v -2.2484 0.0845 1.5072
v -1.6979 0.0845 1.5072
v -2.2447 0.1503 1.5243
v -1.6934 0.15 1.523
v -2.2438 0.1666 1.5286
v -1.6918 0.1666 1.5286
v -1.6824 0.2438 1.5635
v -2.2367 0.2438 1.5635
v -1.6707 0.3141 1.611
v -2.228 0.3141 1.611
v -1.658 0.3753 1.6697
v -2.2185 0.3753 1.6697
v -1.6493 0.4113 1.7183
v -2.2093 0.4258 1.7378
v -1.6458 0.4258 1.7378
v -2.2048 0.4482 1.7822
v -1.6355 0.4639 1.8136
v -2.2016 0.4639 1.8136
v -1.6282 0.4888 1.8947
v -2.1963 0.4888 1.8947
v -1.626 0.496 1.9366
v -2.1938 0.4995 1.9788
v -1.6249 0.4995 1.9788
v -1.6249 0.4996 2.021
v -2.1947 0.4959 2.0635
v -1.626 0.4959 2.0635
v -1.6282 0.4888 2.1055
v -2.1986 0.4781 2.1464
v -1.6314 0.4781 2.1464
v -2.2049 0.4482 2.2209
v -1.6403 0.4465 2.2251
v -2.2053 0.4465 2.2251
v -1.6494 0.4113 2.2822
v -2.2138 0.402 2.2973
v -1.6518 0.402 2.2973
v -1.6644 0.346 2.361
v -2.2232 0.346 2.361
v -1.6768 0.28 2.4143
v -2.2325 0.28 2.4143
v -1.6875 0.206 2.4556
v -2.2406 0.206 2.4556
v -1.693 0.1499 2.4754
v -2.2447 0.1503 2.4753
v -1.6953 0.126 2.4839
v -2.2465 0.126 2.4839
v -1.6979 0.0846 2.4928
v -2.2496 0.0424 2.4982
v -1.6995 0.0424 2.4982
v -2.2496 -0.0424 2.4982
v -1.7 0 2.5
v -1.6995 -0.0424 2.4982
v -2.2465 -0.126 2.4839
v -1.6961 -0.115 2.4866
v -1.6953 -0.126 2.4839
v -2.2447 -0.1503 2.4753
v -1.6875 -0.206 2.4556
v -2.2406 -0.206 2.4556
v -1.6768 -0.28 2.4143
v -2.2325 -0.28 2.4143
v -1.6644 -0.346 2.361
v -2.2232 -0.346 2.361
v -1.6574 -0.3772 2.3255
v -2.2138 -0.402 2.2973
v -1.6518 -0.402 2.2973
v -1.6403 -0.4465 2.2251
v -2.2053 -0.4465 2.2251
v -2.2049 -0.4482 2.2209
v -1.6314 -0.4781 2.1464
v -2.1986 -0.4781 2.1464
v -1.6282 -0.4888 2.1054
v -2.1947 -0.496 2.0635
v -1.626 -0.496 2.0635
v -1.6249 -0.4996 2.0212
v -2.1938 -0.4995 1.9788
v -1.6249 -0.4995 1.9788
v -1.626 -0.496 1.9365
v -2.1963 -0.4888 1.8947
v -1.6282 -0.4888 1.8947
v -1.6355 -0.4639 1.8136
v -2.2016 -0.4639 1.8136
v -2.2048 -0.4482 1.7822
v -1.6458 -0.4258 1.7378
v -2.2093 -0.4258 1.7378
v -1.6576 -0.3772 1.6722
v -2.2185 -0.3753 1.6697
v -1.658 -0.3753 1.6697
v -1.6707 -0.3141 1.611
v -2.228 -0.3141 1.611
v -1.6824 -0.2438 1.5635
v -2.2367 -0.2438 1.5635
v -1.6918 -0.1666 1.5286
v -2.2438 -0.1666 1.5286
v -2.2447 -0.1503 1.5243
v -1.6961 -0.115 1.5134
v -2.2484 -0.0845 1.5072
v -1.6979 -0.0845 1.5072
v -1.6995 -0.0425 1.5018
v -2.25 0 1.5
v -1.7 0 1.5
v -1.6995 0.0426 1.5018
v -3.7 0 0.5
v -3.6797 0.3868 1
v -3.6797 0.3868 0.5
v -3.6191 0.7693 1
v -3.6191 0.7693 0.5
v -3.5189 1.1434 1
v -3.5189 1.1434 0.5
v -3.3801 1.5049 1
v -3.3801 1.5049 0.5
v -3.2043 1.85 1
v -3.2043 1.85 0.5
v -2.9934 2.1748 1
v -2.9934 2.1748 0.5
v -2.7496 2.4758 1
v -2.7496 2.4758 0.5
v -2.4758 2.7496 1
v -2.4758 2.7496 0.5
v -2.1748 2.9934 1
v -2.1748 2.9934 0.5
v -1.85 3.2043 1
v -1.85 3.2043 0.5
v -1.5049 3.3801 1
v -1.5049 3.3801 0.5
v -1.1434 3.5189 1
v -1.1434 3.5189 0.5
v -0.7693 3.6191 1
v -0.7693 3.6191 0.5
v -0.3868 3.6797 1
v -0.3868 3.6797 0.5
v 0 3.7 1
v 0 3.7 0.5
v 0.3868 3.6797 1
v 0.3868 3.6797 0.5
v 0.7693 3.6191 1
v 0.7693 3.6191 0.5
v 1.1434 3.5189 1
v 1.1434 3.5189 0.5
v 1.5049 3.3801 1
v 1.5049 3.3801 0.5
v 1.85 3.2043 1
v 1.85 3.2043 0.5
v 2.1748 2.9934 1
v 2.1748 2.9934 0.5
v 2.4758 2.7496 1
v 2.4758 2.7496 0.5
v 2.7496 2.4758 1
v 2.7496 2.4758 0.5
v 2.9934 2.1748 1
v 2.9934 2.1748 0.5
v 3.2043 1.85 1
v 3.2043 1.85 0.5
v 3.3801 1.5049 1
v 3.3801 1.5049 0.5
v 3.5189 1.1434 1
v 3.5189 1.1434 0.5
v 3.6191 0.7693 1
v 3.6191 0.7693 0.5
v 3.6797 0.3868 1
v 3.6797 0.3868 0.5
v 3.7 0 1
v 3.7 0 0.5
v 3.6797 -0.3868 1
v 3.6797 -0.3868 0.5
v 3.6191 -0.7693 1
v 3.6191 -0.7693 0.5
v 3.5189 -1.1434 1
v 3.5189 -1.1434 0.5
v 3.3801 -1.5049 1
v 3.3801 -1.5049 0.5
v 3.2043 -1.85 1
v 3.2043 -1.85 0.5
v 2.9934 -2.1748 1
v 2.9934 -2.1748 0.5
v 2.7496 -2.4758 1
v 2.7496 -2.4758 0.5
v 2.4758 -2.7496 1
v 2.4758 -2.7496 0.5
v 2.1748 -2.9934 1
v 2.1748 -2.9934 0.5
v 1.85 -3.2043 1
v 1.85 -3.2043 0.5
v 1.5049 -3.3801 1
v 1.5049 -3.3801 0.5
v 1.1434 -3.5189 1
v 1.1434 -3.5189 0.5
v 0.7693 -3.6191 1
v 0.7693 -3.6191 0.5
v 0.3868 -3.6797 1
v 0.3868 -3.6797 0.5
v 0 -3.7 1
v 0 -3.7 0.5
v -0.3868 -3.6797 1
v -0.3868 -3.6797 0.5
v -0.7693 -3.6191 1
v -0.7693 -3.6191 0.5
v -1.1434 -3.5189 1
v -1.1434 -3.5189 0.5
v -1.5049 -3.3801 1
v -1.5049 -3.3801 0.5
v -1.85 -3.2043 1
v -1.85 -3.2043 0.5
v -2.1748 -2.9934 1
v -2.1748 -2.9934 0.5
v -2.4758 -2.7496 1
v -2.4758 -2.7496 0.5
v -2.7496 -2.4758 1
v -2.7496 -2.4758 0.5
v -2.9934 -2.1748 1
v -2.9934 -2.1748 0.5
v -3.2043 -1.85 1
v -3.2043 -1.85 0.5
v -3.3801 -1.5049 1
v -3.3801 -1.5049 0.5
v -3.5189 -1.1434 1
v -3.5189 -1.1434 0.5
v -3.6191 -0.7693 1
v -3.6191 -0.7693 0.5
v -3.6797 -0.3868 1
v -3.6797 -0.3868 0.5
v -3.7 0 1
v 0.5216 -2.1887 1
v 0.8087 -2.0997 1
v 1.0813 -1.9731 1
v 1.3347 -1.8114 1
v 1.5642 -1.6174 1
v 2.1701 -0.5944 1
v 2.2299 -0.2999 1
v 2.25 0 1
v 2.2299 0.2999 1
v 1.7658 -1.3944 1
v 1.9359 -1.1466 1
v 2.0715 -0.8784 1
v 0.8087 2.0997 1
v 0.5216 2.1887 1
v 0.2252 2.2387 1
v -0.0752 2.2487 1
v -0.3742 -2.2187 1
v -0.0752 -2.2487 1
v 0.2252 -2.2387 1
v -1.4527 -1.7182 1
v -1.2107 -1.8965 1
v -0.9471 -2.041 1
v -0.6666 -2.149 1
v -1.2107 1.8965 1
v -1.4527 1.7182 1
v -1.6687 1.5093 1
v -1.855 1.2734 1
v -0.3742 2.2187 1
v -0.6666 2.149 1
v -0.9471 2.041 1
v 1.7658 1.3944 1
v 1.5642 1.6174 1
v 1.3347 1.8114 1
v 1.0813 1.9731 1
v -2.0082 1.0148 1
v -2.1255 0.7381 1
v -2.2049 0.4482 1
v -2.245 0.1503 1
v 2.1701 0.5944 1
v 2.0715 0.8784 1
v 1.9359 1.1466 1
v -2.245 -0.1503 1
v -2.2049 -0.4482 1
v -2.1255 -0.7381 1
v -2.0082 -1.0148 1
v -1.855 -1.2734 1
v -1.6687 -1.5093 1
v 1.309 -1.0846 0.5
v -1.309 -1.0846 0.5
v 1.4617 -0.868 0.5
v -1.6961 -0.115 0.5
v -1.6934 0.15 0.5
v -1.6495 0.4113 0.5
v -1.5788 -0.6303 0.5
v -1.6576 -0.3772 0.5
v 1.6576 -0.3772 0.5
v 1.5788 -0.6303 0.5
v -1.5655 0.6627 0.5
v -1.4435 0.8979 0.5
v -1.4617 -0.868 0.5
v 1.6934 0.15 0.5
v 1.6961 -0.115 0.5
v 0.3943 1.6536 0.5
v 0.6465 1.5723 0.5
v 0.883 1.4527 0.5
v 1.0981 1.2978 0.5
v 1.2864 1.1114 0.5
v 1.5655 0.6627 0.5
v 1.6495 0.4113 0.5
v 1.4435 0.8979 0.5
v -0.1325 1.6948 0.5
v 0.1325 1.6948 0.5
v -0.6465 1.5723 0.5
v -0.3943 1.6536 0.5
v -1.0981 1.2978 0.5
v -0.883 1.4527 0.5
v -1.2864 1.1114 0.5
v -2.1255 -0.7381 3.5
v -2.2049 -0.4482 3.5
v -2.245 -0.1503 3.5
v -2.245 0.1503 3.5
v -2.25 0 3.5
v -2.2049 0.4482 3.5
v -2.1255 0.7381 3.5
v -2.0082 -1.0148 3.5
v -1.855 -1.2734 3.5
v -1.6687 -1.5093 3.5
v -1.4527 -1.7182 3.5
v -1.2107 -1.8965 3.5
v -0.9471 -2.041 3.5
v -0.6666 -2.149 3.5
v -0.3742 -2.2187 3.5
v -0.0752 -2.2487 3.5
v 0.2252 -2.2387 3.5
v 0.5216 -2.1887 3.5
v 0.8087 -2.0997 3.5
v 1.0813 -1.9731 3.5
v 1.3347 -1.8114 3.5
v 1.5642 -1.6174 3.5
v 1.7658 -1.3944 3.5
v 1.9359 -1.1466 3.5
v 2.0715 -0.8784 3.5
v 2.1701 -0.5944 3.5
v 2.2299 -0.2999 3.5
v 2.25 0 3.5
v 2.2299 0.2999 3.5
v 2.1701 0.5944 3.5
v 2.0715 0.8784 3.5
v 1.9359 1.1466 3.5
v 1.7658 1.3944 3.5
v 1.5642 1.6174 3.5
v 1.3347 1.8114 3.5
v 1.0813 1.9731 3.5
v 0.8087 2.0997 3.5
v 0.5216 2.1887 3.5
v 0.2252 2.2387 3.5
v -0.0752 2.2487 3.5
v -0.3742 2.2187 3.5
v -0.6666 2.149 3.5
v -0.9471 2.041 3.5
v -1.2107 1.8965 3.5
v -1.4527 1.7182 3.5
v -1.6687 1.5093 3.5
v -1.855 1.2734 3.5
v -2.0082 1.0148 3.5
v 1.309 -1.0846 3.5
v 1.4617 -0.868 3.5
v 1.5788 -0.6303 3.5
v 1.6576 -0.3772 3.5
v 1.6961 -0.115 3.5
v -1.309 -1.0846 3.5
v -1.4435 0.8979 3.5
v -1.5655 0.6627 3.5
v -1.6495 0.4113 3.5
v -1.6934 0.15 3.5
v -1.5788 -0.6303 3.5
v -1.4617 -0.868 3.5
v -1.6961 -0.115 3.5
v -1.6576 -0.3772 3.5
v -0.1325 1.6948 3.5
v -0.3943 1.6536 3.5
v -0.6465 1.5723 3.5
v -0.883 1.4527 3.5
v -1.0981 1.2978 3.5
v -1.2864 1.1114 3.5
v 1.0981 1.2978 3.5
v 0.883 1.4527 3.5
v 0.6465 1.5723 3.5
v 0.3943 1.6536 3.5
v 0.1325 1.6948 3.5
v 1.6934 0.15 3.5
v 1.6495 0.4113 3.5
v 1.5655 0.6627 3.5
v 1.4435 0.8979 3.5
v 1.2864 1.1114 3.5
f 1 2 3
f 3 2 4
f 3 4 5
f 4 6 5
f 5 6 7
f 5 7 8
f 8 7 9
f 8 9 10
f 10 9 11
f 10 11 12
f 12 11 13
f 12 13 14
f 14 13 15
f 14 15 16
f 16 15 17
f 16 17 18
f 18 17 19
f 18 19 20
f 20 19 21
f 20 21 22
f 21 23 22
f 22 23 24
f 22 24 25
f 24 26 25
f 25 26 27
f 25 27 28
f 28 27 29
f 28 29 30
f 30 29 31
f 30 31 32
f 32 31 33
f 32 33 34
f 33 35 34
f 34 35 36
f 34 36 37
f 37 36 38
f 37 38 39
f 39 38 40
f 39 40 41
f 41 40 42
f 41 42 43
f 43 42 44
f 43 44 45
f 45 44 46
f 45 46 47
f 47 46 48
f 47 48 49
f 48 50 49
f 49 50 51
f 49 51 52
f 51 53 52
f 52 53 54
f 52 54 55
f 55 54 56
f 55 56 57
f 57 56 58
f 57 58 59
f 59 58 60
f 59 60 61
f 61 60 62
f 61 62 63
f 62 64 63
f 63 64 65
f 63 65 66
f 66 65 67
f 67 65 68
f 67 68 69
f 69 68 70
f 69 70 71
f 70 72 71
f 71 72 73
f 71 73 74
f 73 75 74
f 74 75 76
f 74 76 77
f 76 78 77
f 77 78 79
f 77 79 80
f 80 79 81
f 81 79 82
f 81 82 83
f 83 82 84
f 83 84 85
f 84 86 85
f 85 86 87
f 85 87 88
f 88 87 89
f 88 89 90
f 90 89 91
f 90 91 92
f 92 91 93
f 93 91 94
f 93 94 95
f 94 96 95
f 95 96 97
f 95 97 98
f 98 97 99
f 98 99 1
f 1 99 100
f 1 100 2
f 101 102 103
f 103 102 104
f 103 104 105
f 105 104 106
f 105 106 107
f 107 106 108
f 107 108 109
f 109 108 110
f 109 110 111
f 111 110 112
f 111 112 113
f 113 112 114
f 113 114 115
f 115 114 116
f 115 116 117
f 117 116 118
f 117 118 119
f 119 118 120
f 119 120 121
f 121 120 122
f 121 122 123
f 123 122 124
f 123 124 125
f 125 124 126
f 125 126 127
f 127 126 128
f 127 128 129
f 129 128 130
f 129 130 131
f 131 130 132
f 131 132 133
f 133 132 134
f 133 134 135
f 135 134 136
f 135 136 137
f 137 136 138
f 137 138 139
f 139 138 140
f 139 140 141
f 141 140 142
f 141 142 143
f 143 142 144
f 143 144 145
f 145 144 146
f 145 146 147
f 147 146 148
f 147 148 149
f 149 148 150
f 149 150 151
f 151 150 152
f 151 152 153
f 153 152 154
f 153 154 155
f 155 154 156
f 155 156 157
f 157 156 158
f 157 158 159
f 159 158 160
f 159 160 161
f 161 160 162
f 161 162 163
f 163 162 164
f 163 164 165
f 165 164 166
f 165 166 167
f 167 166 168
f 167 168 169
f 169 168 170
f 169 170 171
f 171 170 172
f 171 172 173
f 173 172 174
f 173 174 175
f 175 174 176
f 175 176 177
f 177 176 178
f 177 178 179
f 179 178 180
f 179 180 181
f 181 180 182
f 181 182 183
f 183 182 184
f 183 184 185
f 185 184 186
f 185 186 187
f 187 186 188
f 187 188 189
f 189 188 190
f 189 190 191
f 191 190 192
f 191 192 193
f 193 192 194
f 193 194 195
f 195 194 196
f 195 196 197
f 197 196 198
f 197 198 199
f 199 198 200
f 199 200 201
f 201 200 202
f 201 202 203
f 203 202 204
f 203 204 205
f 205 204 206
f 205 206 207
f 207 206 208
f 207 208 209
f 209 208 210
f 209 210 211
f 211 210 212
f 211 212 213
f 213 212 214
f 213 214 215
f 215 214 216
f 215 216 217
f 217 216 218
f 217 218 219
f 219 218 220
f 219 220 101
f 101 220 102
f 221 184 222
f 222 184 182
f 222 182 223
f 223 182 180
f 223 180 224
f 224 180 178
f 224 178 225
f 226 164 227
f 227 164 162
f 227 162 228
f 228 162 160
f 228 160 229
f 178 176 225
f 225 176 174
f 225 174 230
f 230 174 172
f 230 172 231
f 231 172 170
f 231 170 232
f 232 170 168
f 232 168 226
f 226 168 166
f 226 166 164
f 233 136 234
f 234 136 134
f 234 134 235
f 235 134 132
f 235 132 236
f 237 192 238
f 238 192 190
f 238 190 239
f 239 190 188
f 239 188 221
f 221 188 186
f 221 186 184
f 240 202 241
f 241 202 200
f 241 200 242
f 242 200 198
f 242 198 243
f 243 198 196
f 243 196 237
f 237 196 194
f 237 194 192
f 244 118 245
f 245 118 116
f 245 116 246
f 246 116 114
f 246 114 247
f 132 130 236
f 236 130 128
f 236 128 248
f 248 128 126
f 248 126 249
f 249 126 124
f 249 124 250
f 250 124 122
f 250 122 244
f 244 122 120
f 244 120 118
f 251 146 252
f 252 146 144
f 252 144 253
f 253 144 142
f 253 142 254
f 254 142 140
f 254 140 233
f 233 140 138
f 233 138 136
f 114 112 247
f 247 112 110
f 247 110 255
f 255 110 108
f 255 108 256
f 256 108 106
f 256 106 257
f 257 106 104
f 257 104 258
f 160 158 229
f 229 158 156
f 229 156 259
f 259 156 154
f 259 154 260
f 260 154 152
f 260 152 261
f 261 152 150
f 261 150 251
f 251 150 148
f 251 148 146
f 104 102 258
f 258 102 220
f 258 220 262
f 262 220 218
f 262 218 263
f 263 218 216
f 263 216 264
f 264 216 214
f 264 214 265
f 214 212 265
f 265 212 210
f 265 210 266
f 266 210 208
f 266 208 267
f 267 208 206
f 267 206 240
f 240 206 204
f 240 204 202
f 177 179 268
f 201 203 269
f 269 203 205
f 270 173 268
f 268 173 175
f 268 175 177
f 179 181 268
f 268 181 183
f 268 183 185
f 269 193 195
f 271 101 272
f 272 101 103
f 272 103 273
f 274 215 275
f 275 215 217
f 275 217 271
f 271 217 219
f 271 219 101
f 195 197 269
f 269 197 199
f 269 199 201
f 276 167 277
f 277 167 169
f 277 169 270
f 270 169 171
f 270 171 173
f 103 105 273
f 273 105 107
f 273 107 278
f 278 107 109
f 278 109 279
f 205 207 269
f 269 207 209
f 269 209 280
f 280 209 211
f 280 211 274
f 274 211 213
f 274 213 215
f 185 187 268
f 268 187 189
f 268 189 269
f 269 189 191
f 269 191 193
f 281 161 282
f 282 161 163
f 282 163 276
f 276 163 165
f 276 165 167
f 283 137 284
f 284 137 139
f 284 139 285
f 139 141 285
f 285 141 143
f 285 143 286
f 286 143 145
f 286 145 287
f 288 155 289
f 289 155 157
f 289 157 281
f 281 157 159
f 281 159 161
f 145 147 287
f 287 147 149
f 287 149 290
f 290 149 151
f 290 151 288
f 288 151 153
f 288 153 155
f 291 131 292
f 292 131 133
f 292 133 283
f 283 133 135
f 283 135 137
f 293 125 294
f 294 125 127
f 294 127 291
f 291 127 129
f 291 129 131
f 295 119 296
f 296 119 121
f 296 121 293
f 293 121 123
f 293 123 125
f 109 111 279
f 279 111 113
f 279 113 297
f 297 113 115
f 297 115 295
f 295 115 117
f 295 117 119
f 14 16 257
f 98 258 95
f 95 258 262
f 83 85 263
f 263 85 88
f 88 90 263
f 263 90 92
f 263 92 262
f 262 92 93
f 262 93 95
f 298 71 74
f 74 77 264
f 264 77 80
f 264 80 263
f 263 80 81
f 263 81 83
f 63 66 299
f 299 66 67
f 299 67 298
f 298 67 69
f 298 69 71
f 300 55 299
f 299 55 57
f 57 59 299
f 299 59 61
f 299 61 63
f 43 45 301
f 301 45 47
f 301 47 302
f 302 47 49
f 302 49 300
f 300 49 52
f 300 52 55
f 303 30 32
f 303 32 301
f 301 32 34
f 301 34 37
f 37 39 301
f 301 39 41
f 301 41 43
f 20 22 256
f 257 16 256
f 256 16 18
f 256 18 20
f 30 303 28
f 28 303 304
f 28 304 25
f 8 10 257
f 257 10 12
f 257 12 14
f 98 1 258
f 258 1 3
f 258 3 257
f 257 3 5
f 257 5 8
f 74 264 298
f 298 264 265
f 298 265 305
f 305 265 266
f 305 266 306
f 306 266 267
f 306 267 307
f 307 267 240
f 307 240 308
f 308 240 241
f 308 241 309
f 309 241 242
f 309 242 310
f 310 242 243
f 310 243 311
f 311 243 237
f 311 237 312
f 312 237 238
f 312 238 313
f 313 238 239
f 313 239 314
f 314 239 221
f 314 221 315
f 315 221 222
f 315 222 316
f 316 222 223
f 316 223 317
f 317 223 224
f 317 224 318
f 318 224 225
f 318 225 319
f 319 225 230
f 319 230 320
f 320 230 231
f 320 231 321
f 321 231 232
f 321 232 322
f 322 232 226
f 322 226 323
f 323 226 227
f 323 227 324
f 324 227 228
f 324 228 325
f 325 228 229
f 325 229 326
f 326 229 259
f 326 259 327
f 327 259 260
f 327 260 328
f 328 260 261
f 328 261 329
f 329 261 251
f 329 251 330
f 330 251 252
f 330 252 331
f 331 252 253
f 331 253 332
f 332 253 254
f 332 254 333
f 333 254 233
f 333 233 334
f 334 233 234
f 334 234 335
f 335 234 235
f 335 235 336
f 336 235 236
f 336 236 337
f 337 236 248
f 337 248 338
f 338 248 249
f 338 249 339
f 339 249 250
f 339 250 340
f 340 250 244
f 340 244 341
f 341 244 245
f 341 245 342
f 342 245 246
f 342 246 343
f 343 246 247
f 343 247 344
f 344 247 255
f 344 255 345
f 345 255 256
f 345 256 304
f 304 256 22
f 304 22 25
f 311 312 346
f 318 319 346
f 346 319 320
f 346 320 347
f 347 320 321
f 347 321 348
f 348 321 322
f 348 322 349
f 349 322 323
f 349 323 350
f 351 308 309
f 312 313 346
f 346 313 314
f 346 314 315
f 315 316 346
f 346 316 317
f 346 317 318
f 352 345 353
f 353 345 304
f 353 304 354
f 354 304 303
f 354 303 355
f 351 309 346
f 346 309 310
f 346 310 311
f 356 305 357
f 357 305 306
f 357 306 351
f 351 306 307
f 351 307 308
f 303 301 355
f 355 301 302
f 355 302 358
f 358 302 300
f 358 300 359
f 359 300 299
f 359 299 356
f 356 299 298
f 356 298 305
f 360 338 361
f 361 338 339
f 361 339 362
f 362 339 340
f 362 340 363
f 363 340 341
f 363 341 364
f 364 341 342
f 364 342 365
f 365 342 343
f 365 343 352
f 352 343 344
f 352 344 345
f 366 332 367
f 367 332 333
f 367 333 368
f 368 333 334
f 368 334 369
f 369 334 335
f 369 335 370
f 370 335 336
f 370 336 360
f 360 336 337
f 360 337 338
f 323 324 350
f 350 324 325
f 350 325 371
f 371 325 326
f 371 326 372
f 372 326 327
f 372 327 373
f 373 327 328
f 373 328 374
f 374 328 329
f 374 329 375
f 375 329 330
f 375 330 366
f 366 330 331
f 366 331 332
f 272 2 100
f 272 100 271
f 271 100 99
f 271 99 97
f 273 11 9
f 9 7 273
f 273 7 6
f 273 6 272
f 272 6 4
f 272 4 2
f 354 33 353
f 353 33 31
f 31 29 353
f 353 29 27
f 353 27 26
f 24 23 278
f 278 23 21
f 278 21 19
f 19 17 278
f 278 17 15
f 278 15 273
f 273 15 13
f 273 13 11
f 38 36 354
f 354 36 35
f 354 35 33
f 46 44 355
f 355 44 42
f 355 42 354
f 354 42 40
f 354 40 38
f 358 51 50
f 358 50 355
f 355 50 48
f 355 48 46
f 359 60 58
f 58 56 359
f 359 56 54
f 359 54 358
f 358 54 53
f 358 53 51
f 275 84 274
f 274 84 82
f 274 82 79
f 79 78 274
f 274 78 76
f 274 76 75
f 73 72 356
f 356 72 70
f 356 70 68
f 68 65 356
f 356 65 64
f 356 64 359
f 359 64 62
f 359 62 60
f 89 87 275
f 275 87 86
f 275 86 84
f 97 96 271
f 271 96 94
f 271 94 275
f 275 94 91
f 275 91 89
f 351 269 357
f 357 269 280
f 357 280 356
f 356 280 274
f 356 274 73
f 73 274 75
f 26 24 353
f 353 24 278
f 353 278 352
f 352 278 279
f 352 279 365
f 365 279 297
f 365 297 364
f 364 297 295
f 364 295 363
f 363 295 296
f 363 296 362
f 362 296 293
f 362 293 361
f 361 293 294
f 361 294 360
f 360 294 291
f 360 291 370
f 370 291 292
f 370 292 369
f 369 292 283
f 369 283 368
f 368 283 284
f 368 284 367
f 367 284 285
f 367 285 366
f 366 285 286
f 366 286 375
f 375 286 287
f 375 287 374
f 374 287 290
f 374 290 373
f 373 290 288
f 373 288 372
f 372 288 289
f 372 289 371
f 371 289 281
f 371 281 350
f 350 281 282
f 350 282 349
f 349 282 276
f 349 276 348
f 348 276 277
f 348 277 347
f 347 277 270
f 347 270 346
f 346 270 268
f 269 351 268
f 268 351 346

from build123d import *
from build123d.topology import SkipClean

# Parameters (mm, degrees)
ESBO_O1_R                    = 3.7
RESSALTO_EXTRUS_O2_DEPTH     = 6.5
ESBO_O2_R                    = 1.875
CORTE_EXTRUS_O1_DEPTH        = 0.6
ESBO_O3_R                    = 5
ESBO_O3_R_2                  = 2.415
CORTE_EXTRUS_O2_DEPTH        = 5.5
ESBO_O6_R                    = 2.05
CORTE_EXTRUS_O6_DEPTH        = 0.9
ESBO_O7_R                    = 2.415
ESBO_O7_R_2                  = 2.1
CORTE_EXTRUS_O7_DEPTH        = 5.5
RESSALTO_EXTRUS_O3_START     = 3.5
ESBO_O8_R                    = 2.25
ESBO_O8_R_2                  = 2.1
RESSALTO_EXTRUS_O3_DEPTH     = 3.5
RESSALTO_EXTRUS_O4_START     = 3.5
ESBO_O11_R                   = 2.65
ESBO_O11_R_2                 = 2.25
RESSALTO_EXTRUS_O4_DEPTH     = 3.5
ESBO_O9_R                    = 0.5
CORTE_EXTRUS_O8_DEPTH        = 10
ESBO_O13_R                   = 3.7
CORTE_EXTRUS_O10_DEPTH       = 0.5
ESBO_O14_R                   = 2.05
CORTE_EXTRUS_O11_DEPTH       = 0.4
ESBO_O15_W                   = 5.3
ESBO_O15_H                   = 2.277962938
CORTE_EXTRUS_O12_DEPTH       = 5.2
RESSALTO_EXTRUS_O6_START     = 0.8
ESBO_O17_R                   = 2.05
RESSALTO_EXTRUS_O6_DEPTH     = 0.8
CORTE_EXTRUS_O13_START       = -3.5
CORTE_EXTRUS_O13_OUTLINE_R   = 2.65
CORTE_EXTRUS_O13_OUTLINE_R_2 = 2.25
CORTE_EXTRUS_O13_DEPTH       = 3.5
ESBO_O19_W                   = 1.26014474
ESBO_O19_H                   = 6.353969252
CORTE_EXTRUS_O14_DEPTH       = 5
CORTE_EXTRUS_O15_DEPTH       = 10


# Read off the part's stored shape, not the designer's step: Corte-extrusão13
with BuildPart() as part:
    # Esboço1 → Ressalto-extrusão2 (new body)
    with BuildSketch(Plane.XY):
        with Locations(Location((0, 0, 0), (0, 0, 180))):
            Circle(ESBO_O1_R)
        with BuildLine():
            Line((-1.211385827, -0.884615385), (1.211385827, -0.884615385))
            ThreePointArc((1.211385827, -0.884615385), (0, 1.5), (-1.211385827, -0.884615385))
        make_face(mode=Mode.SUBTRACT)
    extrude(amount=RESSALTO_EXTRUS_O2_DEPTH)

    # Esboço2 → Corte-extrusão1 (cut)
    with BuildSketch(Plane(origin=(0, 0, 0), x_dir=(-1, 0, 0), z_dir=(0, 0, -1))):
        Circle(ESBO_O2_R)
    extrude(amount=-CORTE_EXTRUS_O1_DEPTH, mode=Mode.SUBTRACT)

    # Esboço3 → Corte-extrusão2 (cut)
    with BuildSketch(Plane.XY.offset(6.5)):
        Circle(ESBO_O3_R)
        Circle(ESBO_O3_R_2, mode=Mode.SUBTRACT)
    extrude(amount=-CORTE_EXTRUS_O2_DEPTH, mode=Mode.SUBTRACT)

    # Esboço6 → Corte-extrusão6 (cut)
    with BuildSketch(Plane(origin=(0, 0, 0), x_dir=(-1, 0, 0), z_dir=(0, 0, -1))):
        Circle(ESBO_O6_R)
    extrude(amount=-CORTE_EXTRUS_O6_DEPTH, mode=Mode.SUBTRACT)

    # Esboço7 → Corte-extrusão7 (cut)
    with BuildSketch(Plane.XY.offset(6.5)):
        Circle(ESBO_O7_R)
        Circle(ESBO_O7_R_2, mode=Mode.SUBTRACT)
    extrude(amount=-CORTE_EXTRUS_O7_DEPTH, mode=Mode.SUBTRACT)

    # Esboço8 → Ressalto-extrusão3 (add)
    with BuildSketch(Plane.XY.offset(1).offset(RESSALTO_EXTRUS_O3_START)):
        Circle(ESBO_O8_R)
        Circle(ESBO_O8_R_2, mode=Mode.SUBTRACT)
    extrude(amount=-RESSALTO_EXTRUS_O3_DEPTH)

    # Esboço11 → Ressalto-extrusão4 (add)
    with BuildSketch(Plane.XY.offset(1).offset(RESSALTO_EXTRUS_O4_START)):
        Circle(ESBO_O11_R)
        Circle(ESBO_O11_R_2, mode=Mode.SUBTRACT)
    extrude(amount=-RESSALTO_EXTRUS_O4_DEPTH)

    # Esboço9 → Corte-extrusão8 (cut)
    with BuildSketch(Plane(origin=(0, 0, 0), x_dir=(0, 0, -1), z_dir=(1, 0, 0))):
        with Locations((-2, 0)):
            Circle(ESBO_O9_R)
    extrude(amount=-CORTE_EXTRUS_O8_DEPTH, mode=Mode.SUBTRACT)

    # Esboço13 → Corte-extrusão10 (cut)
    with BuildSketch(Plane(origin=(0, 0, 0), x_dir=(-1, 0, 0), z_dir=(0, 0, -1))):
        Circle(ESBO_O13_R)
    extrude(amount=-CORTE_EXTRUS_O10_DEPTH, mode=Mode.SUBTRACT)

    # Esboço14 → Corte-extrusão11 (cut)
    with BuildSketch(Plane(origin=(0, 0, 0.9), x_dir=(-1, 0, 0), z_dir=(0, 0, -1))):
        Circle(ESBO_O14_R)
    extrude(amount=-CORTE_EXTRUS_O11_DEPTH, mode=Mode.SUBTRACT)

    # Esboço15 → Corte-extrusão12 (cut, symmetric)
    with BuildSketch(Plane(origin=(0, 0, 0), x_dir=(1, 0, 0), z_dir=(0, 1, 0))):
        with Locations((0, -5.638981469)):
            Rectangle(ESBO_O15_W, ESBO_O15_H)
    extrude(amount=CORTE_EXTRUS_O12_DEPTH, both=True, mode=Mode.SUBTRACT)

    # Esboço17 → Ressalto-extrusão6 (add)
    with SkipClean():  # the faces are left unmerged after this step: merging them gives an invalid solid
        with BuildSketch(Plane(origin=(0, 0, 1.3), x_dir=(-1, 0, 0), z_dir=(0, 0, -1)).offset(RESSALTO_EXTRUS_O6_START)):
            Circle(ESBO_O17_R)
            with BuildLine():
                Line((-1.211385827, -0.884615385), (1.211385827, -0.884615385))
                ThreePointArc((1.211385827, -0.884615385), (0, 1.5), (-1.211385827, -0.884615385))
            make_face(mode=Mode.SUBTRACT)
        extrude(amount=-RESSALTO_EXTRUS_O6_DEPTH)

    # Corte-extrusão13 outline → Corte-extrusão13 (cut)
    with SkipClean():  # the faces are left unmerged after this step: merging them gives an invalid solid
        with BuildSketch(Plane.XY.offset(4.5).offset(CORTE_EXTRUS_O13_START)):
            Circle(CORTE_EXTRUS_O13_OUTLINE_R)
            Circle(CORTE_EXTRUS_O13_OUTLINE_R_2, mode=Mode.SUBTRACT)
        extrude(amount=CORTE_EXTRUS_O13_DEPTH, mode=Mode.SUBTRACT)

    # Esboço19 → Corte-extrusão14 (cut, symmetric)
    with SkipClean():  # the faces are left unmerged after this step: merging them gives an invalid solid
        with BuildSketch(Plane(origin=(0, 0, 0), x_dir=(0, 0, -1), z_dir=(1, 0, 0))):
            with Locations((-4.13007237, -0.123588244)):
                Rectangle(ESBO_O19_W, ESBO_O19_H)
        extrude(amount=CORTE_EXTRUS_O14_DEPTH, both=True, mode=Mode.SUBTRACT)

    # Esboço20 → Corte-extrusão15 (cut)
    with BuildSketch(Plane(origin=(0, 0, 0.5), x_dir=(-1, 0, 0), z_dir=(0, 0, -1))):
        with BuildLine():
            Line((-1.30904907, -1.084615385), (1.30904907, -1.084615385))
            ThreePointArc((1.30904907, -1.084615385), (0, 1.7), (-1.30904907, -1.084615385))
        make_face()
    extrude(amount=-CORTE_EXTRUS_O15_DEPTH, mode=Mode.SUBTRACT)


solid = part.part
